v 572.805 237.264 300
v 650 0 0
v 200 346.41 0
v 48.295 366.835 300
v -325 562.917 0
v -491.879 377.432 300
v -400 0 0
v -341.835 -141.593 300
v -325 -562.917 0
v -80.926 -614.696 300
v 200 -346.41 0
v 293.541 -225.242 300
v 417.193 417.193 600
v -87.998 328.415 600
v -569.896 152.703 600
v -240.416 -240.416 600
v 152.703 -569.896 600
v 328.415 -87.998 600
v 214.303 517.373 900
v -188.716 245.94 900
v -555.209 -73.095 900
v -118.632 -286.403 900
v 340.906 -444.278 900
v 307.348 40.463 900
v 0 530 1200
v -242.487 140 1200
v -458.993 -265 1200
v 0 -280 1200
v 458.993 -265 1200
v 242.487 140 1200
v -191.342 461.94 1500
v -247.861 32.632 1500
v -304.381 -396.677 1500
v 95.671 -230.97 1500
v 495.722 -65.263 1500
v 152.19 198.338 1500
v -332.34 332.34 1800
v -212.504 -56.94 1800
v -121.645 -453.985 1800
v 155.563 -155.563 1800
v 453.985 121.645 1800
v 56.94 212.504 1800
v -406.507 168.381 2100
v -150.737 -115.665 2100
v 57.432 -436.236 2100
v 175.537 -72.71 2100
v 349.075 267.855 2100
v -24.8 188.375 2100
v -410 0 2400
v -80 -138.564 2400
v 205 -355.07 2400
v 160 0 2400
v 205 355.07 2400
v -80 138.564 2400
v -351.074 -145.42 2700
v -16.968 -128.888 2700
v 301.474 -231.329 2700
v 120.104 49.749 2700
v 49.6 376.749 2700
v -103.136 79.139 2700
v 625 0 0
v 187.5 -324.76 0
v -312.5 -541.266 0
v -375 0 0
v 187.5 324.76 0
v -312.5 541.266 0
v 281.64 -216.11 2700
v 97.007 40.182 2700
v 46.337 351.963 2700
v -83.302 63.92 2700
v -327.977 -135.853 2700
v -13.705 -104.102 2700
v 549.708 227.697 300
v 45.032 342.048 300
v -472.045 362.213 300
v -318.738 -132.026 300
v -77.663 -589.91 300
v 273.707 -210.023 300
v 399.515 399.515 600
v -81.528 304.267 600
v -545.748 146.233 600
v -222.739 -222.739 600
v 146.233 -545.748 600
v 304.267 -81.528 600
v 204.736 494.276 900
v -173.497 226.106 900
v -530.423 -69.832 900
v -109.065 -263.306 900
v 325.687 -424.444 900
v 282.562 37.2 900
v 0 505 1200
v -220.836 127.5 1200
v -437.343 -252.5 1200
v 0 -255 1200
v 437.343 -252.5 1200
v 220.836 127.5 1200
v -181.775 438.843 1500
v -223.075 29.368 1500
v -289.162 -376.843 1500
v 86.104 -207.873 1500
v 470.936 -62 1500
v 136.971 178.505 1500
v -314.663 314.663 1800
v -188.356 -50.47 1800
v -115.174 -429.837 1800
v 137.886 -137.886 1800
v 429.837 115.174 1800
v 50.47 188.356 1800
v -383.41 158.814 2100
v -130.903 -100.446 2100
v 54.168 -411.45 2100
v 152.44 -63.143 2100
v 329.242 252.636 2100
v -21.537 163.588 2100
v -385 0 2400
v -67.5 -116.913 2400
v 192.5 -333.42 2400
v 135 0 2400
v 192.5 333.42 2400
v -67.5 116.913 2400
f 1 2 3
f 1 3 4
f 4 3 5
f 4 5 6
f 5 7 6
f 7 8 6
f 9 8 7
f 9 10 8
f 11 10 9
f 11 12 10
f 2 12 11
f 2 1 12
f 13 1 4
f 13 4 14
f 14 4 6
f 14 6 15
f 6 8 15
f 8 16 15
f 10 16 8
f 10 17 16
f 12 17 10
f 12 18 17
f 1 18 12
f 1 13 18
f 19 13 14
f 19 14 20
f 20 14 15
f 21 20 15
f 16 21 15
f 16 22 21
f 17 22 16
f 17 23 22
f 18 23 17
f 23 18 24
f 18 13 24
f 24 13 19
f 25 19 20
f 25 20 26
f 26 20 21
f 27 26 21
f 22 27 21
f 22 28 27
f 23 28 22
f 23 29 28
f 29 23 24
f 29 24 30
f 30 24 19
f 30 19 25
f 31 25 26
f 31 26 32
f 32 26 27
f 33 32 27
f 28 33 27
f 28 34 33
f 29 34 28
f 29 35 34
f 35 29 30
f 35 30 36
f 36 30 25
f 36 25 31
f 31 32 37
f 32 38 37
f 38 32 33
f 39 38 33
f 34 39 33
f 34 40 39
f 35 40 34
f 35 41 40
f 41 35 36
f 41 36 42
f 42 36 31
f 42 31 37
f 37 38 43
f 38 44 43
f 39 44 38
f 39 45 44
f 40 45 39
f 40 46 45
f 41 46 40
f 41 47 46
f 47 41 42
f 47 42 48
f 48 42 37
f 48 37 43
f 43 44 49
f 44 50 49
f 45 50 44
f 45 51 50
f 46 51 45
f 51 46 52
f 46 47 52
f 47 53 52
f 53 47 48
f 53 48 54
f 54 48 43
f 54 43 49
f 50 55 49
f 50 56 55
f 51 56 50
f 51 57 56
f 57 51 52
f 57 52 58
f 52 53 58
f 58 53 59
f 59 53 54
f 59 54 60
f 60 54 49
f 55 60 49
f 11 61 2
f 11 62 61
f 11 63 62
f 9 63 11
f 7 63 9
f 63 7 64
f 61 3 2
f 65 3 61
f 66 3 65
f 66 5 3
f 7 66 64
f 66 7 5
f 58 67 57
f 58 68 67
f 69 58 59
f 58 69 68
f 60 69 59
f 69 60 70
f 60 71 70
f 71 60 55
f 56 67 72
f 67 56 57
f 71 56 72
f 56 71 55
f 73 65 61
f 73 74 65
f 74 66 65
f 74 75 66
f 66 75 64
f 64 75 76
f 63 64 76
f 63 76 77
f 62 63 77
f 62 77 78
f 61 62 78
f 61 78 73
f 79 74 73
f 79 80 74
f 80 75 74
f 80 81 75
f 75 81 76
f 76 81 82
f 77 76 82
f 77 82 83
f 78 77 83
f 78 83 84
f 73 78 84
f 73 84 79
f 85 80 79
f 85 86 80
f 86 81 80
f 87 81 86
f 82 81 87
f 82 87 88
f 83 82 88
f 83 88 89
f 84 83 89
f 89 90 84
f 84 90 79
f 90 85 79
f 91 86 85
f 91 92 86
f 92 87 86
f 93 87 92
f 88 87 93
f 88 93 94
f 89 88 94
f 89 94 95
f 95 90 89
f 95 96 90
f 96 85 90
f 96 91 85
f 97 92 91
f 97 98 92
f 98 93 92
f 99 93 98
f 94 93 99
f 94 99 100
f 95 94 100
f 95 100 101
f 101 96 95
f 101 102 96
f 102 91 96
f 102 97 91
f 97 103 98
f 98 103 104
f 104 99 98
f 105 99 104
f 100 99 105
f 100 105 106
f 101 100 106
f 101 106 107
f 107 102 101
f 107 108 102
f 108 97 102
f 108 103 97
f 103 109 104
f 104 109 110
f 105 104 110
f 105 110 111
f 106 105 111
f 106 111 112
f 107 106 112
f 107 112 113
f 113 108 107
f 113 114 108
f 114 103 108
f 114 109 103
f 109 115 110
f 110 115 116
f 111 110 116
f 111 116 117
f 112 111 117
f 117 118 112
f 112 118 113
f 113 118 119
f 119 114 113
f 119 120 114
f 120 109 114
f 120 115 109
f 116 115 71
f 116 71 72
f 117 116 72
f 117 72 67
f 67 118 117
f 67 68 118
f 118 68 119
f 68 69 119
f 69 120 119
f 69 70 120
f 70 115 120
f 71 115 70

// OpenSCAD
difference() {
	polyhedron(faces = [[0, 6, 1], [1, 6, 7], [1, 7, 2], [2, 7, 8], [2, 8, 3], [3, 8, 9], [3, 9, 4], [4, 9, 10], [4, 10, 5], [5, 10, 11], [5, 11, 0], [0, 11, 6], [6, 12, 7], [7, 12, 13], [7, 13, 8], [8, 13, 14], [8, 14, 9], [9, 14, 15], [9, 15, 10], [10, 15, 16], [10, 16, 11], [11, 16, 17], [11, 17, 6], [6, 17, 12], [12, 18, 13], [13, 18, 19], [13, 19, 14], [14, 19, 20], [14, 20, 15], [15, 20, 21], [15, 21, 16], [16, 21, 22], [16, 22, 17], [17, 22, 23], [17, 23, 12], [12, 23, 18], [18, 24, 19], [19, 24, 25], [19, 25, 20], [20, 25, 26], [20, 26, 21], [21, 26, 27], [21, 27, 22], [22, 27, 28], [22, 28, 23], [23, 28, 29], [23, 29, 18], [18, 29, 24], [24, 30, 25], [25, 30, 31], [25, 31, 26], [26, 31, 32], [26, 32, 27], [27, 32, 33], [27, 33, 28], [28, 33, 34], [28, 34, 29], [29, 34, 35], [29, 35, 24], [24, 35, 30], [30, 36, 31], [31, 36, 37], [31, 37, 32], [32, 37, 38], [32, 38, 33], [33, 38, 39], [33, 39, 34], [34, 39, 40], [34, 40, 35], [35, 40, 41], [35, 41, 30], [30, 41, 36], [36, 42, 37], [37, 42, 43], [37, 43, 38], [38, 43, 44], [38, 44, 39], [39, 44, 45], [39, 45, 40], [40, 45, 46], [40, 46, 41], [41, 46, 47], [41, 47, 36], [36, 47, 42], [42, 48, 43], [43, 48, 49], [43, 49, 44], [44, 49, 50], [44, 50, 45], [45, 50, 51], [45, 51, 46], [46, 51, 52], [46, 52, 47], [47, 52, 53], [47, 53, 42], [42, 53, 48], [48, 54, 49], [49, 54, 55], [49, 55, 50], [50, 55, 56], [50, 56, 51], [51, 56, 57], [51, 57, 52], [52, 57, 58], [52, 58, 53], [53, 58, 59], [53, 59, 48], [48, 59, 54], [1, 60, 0], [54, 61, 55], [2, 60, 1], [55, 61, 56], [3, 60, 2], [56, 61, 57], [4, 60, 3], [57, 61, 58], [5, 60, 4], [58, 61, 59], [0, 60, 5], [59, 61, 54]], points = [[650.0000000000, 0.0000000000, 0.0000000000], [200.0000000000, 346.4101615138, 0.0000000000], [-325.0000000000, 562.9165124599, 0.0000000000], [-400.0000000000, 0.0000000000, 0.0000000000], [-325.0000000000, -562.9165124599, 0.0000000000], [200.0000000000, -346.4101615138, 0.0000000000], [572.8053101570, 237.2637280664, 300.0000000000], [48.2946911214, 366.8345987083, 300.0000000000], [-491.8790709806, 377.4320859854, 300.0000000000], [-341.8354270292, -141.5928699751, 300.0000000000], [-80.9262391764, -614.6958140518, 300.0000000000], [293.5407359078, -225.2417287332, 300.0000000000], [417.1930009001, 417.1930009001, 600.0000000000], [-87.9984753349, 328.4147809383, 600.0000000000], [-569.8962375106, 152.7032366105, 600.0000000000], [-240.4163056034, -240.4163056034, 600.0000000000], [152.7032366105, -569.8962375106, 600.0000000000], [328.4147809383, -87.9984753349, 600.0000000000], [214.3027221245, 517.3725382063, 900.0000000000], [-188.7160429927, 245.9395354903, 900.0000000000], [-555.2091223693, -73.0946676432, 900.0000000000], [-118.6318640332, -286.4026550785, 900.0000000000], [340.9064002449, -444.2778705631, 900.0000000000], [307.3479070259, 40.4631195882, 900.0000000000], [0.0000000000, 530.0000000000, 1200.0000000000], [-242.4871130596, 140.0000000000, 1200.0000000000], [-458.9934640058, -265.0000000000, 1200.0000000000], [-0.0000000000, -280.0000000000, 1200.0000000000], [458.9934640058, -265.0000000000, 1200.0000000000], [242.4871130596, 140.0000000000, 1200.0000000000], [-191.3417161825, 461.9397662556, 1500.0000000000], [-247.8612153435, 32.6315480550, 1500.0000000000], [-304.3807145044, -396.6766701456, 1500.0000000000], [95.6708580913, -230.9698831278, 1500.0000000000], [495.7224306869, -65.2630961100, 1500.0000000000], [152.1903572522, 198.3383350728, 1500.0000000000], [-332.3401871577, 332.3401871577, 1800.0000000000], [-212.5036817836, -56.9401899226, 1800.0000000000], [-121.6449511982, -453.9851383559, 1800.0000000000], [155.5634918610, -155.5634918610, 1800.0000000000], [453.9851383559, 121.6449511982, 1800.0000000000], [56.9401899226, 212.5036817836, 1800.0000000000], [-406.5069943050, 168.3807102406, 2100.0000000000], [-150.7371346553, -115.6646715117, 2100.0000000000], [57.4315245768, -436.2357390045, 2100.0000000000], [175.5371111771, -72.7098521494, 2100.0000000000], [349.0754697281, 267.8550287638, 2100.0000000000], [-24.7999765218, 188.3745236610, 2100.0000000000], [-410.0000000000, 0.0000000000, 2400.0000000000], [-80.0000000000, -138.5640646055, 2400.0000000000], [205.0000000000, -355.0704155516, 2400.0000000000], [160.0000000000, -0.0000000000, 2400.0000000000], [205.0000000000, 355.0704155516, 2400.0000000000], [-80.0000000000, 138.5640646055, 2400.0000000000], [-351.0742223543, -145.4197042987, 2700.0000000000], [-16.9684049886, -128.8878319786, 2700.0000000000], [301.4742693107, -231.3293430233, 2700.0000000000], [120.1043392265, 49.7488462075, 2700.0000000000], [49.5999530436, 376.7490473220, 2700.0000000000], [-103.1359342379, 79.1389857711, 2700.0000000000], [-0.0000000000, 0.0000000000, 0.0000000000], [0.0000000000, -0.0000000000, 2700.0000000000]]);
	polyhedron(faces = [[0, 6, 1], [1, 6, 7], [1, 7, 2], [2, 7, 8], [2, 8, 3], [3, 8, 9], [3, 9, 4], [4, 9, 10], [4, 10, 5], [5, 10, 11], [5, 11, 0], [0, 11, 6], [6, 12, 7], [7, 12, 13], [7, 13, 8], [8, 13, 14], [8, 14, 9], [9, 14, 15], [9, 15, 10], [10, 15, 16], [10, 16, 11], [11, 16, 17], [11, 17, 6], [6, 17, 12], [12, 18, 13], [13, 18, 19], [13, 19, 14], [14, 19, 20], [14, 20, 15], [15, 20, 21], [15, 21, 16], [16, 21, 22], [16, 22, 17], [17, 22, 23], [17, 23, 12], [12, 23, 18], [18, 24, 19], [19, 24, 25], [19, 25, 20], [20, 25, 26], [20, 26, 21], [21, 26, 27], [21, 27, 22], [22, 27, 28], [22, 28, 23], [23, 28, 29], [23, 29, 18], [18, 29, 24], [24, 30, 25], [25, 30, 31], [25, 31, 26], [26, 31, 32], [26, 32, 27], [27, 32, 33], [27, 33, 28], [28, 33, 34], [28, 34, 29], [29, 34, 35], [29, 35, 24], [24, 35, 30], [30, 36, 31], [31, 36, 37], [31, 37, 32], [32, 37, 38], [32, 38, 33], [33, 38, 39], [33, 39, 34], [34, 39, 40], [34, 40, 35], [35, 40, 41], [35, 41, 30], [30, 41, 36], [36, 42, 37], [37, 42, 43], [37, 43, 38], [38, 43, 44], [38, 44, 39], [39, 44, 45], [39, 45, 40], [40, 45, 46], [40, 46, 41], [41, 46, 47], [41, 47, 36], [36, 47, 42], [42, 48, 43], [43, 48, 49], [43, 49, 44], [44, 49, 50], [44, 50, 45], [45, 50, 51], [45, 51, 46], [46, 51, 52], [46, 52, 47], [47, 52, 53], [47, 53, 42], [42, 53, 48], [48, 54, 49], [49, 54, 55], [49, 55, 50], [50, 55, 56], [50, 56, 51], [51, 56, 57], [51, 57, 52], [52, 57, 58], [52, 58, 53], [53, 58, 59], [53, 59, 48], [48, 59, 54], [1, 60, 0], [54, 61, 55], [2, 60, 1], [55, 61, 56], [3, 60, 2], [56, 61, 57], [4, 60, 3], [57, 61, 58], [5, 60, 4], [58, 61, 59], [0, 60, 5], [59, 61, 54]], points = [[625.0000000000, 0.0000000000, 0.0000000000], [187.5000000000, 324.7595264192, 0.0000000000], [-312.5000000000, 541.2658773653, 0.0000000000], [-375.0000000000, 0.0000000000, 0.0000000000], [-312.5000000000, -541.2658773653, 0.0000000000], [187.5000000000, -324.7595264192, 0.0000000000], [549.7083218442, 227.6966422572, 300.0000000000], [45.0315363159, 342.0484771740, 300.0000000000], [-472.0452374733, 362.2130502602, 300.0000000000], [-318.7384387164, -132.0257841660, 300.0000000000], [-77.6630843709, -589.9096925174, 300.0000000000], [273.7069024005, -210.0226930080, 300.0000000000], [399.5153313704, 399.5153313704, 600.0000000000], [-81.5279992073, 304.2666352811, 600.0000000000], [-545.7480918533, 146.2327604829, 600.0000000000], [-222.7386360738, -222.7386360738, 600.0000000000], [146.2327604829, -545.7480918533, 600.0000000000], [304.2666352811, -81.5279992073, 600.0000000000], [204.7356363153, 494.2755498935, 900.0000000000], [-173.4970072675, 226.1057019830, 900.0000000000], [-530.4230008350, -69.8315128377, 900.0000000000], [-109.0647782241, -263.3056667657, 900.0000000000], [325.6873645197, -424.4440370558, 900.0000000000], [282.5617854915, 37.1999647827, 900.0000000000], [0.0000000000, 505.0000000000, 1200.0000000000], [-220.8364779650, 127.5000000000, 1200.0000000000], [-437.3428289111, -252.5000000000, 1200.0000000000], [-0.0000000000, -255.0000000000, 1200.0000000000], [437.3428289111, -252.5000000000, 1200.0000000000], [220.8364779650, 127.5000000000, 1200.0000000000], [-181.7746303734, 438.8427779429, 1500.0000000000], [-223.0750938091, 29.3683932495, 1500.0000000000], [-289.1616787791, -376.8428366383, 1500.0000000000], [86.1037722821, -207.8728948150, 1500.0000000000], [470.9363091526, -61.9999413045, 1500.0000000000], [136.9713215270, 178.5045015655, 1500.0000000000], [-314.6625176280, 314.6625176280, 1800.0000000000], [-188.3555361264, -50.4697137950, 1800.0000000000], [-115.1744750706, -429.8369926986, 1800.0000000000], [137.8858223314, -137.8858223314, 1800.0000000000], [429.8369926986, 115.1744750706, 1800.0000000000], [50.4697137950, 188.3555361264, 1800.0000000000], [-383.4100059922, 158.8136244315, 2100.0000000000], [-130.9033011481, -100.4456357864, 2100.0000000000], [54.1683697713, -411.4496174701, 2100.0000000000], [152.4401228644, -63.1427663402, 2100.0000000000], [329.2416362209, 252.6359930386, 2100.0000000000], [-21.5368217163, 163.5884021267, 2100.0000000000], [-385.0000000000, 0.0000000000, 2400.0000000000], [-67.5000000000, -116.9134295109, 2400.0000000000], [192.5000000000, -333.4197804570, 2400.0000000000], [135.0000000000, -0.0000000000, 2400.0000000000], [192.5000000000, 333.4197804570, 2400.0000000000], [-67.5000000000, 116.9134295109, 2400.0000000000], [-327.9772340415, -135.8526184896, 2700.0000000000], [-13.7052501831, -104.1017104443, 2700.0000000000], [281.6404358034, -216.1103072981, 2700.0000000000], [97.0073509137, 40.1817603983, 2700.0000000000], [46.3367982381, 351.9629257877, 2700.0000000000], [-83.3021007306, 63.9199500459, 2700.0000000000], [-0.0000000000, -0.0000000000, 0.0000000000], [0.0000000000, 0.0000000000, 2700.0000000000]]);
}
